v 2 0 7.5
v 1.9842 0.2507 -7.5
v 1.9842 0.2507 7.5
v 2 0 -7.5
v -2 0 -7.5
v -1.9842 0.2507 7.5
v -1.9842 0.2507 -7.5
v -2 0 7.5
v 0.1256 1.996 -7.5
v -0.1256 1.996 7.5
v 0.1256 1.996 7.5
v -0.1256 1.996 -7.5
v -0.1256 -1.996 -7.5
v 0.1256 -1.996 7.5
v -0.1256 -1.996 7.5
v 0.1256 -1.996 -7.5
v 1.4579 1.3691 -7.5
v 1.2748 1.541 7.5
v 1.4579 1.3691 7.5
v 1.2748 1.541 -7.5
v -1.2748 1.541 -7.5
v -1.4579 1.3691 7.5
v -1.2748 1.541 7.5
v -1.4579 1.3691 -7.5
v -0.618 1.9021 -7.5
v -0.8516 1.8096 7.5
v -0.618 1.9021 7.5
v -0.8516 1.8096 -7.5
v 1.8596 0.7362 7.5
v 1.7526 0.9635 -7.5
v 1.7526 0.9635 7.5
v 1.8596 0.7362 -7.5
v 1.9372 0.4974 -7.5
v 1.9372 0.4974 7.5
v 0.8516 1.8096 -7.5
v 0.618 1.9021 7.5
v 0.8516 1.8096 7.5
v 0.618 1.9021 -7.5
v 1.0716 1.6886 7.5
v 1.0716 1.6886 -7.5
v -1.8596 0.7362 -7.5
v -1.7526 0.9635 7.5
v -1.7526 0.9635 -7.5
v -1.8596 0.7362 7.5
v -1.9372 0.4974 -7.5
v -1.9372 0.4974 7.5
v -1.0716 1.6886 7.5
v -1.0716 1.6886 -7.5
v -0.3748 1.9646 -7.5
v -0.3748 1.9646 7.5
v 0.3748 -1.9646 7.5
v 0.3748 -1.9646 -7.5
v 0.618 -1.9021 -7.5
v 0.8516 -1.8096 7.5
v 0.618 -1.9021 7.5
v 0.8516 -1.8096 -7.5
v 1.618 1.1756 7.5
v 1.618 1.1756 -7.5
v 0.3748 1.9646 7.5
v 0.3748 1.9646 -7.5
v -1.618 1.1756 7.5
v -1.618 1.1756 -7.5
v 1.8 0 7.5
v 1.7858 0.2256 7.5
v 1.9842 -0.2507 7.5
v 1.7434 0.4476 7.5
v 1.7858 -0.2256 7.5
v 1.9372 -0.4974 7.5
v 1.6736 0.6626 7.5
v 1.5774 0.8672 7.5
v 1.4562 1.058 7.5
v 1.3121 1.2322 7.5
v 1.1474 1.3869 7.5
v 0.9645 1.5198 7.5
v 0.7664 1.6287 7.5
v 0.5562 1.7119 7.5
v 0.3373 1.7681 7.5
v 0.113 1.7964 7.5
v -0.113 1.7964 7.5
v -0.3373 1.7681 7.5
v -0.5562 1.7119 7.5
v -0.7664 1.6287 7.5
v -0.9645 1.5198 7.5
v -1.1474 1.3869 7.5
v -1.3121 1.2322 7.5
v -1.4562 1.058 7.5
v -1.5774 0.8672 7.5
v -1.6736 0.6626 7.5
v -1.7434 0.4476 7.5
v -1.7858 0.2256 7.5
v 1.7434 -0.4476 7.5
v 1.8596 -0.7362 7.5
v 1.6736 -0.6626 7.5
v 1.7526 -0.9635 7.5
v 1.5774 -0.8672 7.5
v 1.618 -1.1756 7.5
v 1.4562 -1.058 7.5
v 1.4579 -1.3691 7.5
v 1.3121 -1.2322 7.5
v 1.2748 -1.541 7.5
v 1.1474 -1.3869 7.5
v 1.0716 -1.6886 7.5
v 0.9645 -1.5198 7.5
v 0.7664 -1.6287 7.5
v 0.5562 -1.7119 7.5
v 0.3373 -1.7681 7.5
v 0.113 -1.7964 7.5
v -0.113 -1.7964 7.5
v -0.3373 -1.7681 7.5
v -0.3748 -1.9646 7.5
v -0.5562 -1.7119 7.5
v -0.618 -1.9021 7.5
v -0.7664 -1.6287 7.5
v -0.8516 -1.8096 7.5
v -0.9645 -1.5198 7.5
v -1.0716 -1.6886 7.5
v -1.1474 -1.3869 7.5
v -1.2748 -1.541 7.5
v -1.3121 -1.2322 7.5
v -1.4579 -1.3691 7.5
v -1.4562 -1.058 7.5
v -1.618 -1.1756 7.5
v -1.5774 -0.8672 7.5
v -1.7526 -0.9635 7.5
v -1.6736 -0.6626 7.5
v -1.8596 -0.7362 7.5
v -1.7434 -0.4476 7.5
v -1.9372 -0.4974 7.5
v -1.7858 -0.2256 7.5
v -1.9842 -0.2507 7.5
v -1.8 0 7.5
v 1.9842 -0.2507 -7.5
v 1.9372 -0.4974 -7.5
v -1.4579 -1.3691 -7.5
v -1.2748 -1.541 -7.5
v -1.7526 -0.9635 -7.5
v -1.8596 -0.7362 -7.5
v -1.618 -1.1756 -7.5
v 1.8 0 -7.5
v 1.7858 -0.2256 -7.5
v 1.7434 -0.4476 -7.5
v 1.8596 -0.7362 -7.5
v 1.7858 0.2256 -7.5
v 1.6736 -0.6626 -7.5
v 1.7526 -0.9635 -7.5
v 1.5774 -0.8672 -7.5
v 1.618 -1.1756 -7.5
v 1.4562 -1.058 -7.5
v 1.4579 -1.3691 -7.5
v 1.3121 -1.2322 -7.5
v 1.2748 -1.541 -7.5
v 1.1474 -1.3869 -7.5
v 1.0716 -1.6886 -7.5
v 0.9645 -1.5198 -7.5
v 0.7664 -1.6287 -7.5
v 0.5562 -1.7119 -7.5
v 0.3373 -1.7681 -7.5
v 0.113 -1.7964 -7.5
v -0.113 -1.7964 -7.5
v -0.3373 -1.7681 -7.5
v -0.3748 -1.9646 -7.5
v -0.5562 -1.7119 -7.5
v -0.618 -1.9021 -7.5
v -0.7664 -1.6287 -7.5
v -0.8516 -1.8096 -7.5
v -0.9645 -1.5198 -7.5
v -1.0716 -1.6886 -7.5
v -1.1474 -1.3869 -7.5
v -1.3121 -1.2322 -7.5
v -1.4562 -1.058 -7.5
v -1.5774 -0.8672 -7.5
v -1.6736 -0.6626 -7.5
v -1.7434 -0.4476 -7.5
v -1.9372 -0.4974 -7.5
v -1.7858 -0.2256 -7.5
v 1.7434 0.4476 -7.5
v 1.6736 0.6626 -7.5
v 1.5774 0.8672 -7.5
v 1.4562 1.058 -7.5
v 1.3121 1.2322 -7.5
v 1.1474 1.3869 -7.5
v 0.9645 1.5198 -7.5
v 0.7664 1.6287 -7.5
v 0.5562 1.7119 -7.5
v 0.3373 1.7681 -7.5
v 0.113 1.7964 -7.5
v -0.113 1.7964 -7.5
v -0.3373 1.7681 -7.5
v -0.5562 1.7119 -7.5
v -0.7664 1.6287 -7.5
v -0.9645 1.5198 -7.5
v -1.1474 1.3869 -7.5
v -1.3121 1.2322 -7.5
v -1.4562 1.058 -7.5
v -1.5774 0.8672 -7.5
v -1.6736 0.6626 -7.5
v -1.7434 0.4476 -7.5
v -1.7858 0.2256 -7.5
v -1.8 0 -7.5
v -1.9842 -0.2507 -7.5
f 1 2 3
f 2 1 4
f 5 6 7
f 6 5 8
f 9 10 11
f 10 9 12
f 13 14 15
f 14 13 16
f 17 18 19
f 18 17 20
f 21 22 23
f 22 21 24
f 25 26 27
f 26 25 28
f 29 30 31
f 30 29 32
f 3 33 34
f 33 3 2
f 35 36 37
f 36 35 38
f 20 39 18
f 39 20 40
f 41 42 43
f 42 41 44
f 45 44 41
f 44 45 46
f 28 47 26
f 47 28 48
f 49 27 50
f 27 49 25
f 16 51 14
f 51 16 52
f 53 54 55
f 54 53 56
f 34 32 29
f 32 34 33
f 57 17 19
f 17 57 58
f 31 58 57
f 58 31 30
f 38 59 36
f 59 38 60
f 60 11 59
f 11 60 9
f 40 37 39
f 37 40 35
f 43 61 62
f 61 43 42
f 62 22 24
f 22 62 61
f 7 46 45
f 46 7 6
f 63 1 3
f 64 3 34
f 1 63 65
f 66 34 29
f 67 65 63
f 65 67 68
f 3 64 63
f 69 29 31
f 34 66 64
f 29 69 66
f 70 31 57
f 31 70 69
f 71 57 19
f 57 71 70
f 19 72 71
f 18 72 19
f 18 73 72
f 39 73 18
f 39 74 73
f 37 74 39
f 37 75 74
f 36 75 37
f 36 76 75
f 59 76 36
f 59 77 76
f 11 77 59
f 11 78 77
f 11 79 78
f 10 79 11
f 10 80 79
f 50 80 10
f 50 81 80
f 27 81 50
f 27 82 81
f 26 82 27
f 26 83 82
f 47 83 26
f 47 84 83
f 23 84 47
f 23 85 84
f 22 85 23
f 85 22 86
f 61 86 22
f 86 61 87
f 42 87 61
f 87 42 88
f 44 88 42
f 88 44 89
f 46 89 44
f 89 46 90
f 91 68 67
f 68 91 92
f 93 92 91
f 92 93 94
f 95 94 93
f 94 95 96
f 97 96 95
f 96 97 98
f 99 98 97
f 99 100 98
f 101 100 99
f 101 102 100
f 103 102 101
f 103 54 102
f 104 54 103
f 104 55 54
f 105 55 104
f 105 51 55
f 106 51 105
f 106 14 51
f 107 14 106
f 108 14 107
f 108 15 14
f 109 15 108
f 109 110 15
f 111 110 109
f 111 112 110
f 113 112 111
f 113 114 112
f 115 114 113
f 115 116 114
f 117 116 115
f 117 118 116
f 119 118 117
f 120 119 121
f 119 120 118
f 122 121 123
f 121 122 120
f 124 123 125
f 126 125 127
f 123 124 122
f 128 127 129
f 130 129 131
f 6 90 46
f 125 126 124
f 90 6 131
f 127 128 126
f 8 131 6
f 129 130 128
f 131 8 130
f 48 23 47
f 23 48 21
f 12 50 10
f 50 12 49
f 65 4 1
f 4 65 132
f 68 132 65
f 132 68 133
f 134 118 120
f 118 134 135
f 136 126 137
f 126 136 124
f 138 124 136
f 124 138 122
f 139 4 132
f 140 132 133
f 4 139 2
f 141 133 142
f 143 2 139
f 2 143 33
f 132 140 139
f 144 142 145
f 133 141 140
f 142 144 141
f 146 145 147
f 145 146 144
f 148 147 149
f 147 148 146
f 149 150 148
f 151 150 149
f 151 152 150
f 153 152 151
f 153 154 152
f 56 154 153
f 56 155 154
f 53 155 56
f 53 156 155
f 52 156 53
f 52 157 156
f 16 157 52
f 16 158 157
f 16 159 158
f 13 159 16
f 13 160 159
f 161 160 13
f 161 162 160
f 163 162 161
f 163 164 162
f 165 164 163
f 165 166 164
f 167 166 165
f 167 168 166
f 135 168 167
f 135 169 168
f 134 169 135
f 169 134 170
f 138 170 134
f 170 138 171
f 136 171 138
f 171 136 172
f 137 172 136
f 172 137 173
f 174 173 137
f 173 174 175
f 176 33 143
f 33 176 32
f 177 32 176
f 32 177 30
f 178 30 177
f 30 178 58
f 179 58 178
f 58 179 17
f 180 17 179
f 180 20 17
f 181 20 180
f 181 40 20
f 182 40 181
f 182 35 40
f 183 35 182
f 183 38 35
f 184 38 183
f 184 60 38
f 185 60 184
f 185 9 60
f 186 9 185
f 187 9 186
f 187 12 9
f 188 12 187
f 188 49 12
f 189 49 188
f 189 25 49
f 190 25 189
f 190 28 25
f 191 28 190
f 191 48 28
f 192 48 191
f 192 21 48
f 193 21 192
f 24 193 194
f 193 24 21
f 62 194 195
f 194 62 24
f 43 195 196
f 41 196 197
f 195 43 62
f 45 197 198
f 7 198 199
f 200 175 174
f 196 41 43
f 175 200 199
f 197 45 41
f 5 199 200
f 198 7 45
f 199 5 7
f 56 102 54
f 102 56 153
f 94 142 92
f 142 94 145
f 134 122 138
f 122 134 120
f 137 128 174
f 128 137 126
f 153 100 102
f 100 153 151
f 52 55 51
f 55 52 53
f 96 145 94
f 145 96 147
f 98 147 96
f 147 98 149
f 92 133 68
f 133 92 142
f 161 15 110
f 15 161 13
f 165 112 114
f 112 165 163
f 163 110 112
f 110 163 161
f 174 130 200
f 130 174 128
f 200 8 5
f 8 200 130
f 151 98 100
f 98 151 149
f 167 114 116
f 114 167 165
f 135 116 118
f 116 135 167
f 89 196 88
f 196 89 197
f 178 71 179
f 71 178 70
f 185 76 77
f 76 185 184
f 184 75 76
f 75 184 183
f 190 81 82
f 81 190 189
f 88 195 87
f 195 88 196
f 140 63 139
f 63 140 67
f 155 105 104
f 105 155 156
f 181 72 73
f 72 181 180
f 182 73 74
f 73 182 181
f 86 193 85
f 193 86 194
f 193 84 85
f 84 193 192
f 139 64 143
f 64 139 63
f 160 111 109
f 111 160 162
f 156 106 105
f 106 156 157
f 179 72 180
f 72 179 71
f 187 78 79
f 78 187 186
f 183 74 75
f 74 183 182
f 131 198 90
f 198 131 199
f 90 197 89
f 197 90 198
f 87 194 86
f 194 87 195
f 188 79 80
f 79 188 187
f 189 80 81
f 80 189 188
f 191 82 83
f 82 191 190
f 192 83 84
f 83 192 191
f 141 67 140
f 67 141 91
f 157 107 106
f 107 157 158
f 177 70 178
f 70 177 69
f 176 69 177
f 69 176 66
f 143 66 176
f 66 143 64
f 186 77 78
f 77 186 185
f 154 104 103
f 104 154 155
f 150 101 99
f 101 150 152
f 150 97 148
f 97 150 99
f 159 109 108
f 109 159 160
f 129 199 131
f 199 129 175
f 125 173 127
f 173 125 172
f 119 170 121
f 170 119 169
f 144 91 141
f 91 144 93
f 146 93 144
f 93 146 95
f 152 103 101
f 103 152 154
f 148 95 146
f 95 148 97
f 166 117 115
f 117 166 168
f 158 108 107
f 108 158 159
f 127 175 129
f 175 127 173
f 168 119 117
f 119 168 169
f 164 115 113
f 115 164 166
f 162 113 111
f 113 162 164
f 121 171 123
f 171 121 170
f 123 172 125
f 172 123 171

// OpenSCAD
$fn = 50;


difference() {
	union() {
		translate(v = [0, 0, -7.5000000000]) {
			cylinder(h = 15, r = 2.0000000000);
		}
	}
	union() {
		translate(v = [0, 0, -100.0000000000]) {
			cylinder(h = 200, r = 1.8000000000);
		}
	}
}
